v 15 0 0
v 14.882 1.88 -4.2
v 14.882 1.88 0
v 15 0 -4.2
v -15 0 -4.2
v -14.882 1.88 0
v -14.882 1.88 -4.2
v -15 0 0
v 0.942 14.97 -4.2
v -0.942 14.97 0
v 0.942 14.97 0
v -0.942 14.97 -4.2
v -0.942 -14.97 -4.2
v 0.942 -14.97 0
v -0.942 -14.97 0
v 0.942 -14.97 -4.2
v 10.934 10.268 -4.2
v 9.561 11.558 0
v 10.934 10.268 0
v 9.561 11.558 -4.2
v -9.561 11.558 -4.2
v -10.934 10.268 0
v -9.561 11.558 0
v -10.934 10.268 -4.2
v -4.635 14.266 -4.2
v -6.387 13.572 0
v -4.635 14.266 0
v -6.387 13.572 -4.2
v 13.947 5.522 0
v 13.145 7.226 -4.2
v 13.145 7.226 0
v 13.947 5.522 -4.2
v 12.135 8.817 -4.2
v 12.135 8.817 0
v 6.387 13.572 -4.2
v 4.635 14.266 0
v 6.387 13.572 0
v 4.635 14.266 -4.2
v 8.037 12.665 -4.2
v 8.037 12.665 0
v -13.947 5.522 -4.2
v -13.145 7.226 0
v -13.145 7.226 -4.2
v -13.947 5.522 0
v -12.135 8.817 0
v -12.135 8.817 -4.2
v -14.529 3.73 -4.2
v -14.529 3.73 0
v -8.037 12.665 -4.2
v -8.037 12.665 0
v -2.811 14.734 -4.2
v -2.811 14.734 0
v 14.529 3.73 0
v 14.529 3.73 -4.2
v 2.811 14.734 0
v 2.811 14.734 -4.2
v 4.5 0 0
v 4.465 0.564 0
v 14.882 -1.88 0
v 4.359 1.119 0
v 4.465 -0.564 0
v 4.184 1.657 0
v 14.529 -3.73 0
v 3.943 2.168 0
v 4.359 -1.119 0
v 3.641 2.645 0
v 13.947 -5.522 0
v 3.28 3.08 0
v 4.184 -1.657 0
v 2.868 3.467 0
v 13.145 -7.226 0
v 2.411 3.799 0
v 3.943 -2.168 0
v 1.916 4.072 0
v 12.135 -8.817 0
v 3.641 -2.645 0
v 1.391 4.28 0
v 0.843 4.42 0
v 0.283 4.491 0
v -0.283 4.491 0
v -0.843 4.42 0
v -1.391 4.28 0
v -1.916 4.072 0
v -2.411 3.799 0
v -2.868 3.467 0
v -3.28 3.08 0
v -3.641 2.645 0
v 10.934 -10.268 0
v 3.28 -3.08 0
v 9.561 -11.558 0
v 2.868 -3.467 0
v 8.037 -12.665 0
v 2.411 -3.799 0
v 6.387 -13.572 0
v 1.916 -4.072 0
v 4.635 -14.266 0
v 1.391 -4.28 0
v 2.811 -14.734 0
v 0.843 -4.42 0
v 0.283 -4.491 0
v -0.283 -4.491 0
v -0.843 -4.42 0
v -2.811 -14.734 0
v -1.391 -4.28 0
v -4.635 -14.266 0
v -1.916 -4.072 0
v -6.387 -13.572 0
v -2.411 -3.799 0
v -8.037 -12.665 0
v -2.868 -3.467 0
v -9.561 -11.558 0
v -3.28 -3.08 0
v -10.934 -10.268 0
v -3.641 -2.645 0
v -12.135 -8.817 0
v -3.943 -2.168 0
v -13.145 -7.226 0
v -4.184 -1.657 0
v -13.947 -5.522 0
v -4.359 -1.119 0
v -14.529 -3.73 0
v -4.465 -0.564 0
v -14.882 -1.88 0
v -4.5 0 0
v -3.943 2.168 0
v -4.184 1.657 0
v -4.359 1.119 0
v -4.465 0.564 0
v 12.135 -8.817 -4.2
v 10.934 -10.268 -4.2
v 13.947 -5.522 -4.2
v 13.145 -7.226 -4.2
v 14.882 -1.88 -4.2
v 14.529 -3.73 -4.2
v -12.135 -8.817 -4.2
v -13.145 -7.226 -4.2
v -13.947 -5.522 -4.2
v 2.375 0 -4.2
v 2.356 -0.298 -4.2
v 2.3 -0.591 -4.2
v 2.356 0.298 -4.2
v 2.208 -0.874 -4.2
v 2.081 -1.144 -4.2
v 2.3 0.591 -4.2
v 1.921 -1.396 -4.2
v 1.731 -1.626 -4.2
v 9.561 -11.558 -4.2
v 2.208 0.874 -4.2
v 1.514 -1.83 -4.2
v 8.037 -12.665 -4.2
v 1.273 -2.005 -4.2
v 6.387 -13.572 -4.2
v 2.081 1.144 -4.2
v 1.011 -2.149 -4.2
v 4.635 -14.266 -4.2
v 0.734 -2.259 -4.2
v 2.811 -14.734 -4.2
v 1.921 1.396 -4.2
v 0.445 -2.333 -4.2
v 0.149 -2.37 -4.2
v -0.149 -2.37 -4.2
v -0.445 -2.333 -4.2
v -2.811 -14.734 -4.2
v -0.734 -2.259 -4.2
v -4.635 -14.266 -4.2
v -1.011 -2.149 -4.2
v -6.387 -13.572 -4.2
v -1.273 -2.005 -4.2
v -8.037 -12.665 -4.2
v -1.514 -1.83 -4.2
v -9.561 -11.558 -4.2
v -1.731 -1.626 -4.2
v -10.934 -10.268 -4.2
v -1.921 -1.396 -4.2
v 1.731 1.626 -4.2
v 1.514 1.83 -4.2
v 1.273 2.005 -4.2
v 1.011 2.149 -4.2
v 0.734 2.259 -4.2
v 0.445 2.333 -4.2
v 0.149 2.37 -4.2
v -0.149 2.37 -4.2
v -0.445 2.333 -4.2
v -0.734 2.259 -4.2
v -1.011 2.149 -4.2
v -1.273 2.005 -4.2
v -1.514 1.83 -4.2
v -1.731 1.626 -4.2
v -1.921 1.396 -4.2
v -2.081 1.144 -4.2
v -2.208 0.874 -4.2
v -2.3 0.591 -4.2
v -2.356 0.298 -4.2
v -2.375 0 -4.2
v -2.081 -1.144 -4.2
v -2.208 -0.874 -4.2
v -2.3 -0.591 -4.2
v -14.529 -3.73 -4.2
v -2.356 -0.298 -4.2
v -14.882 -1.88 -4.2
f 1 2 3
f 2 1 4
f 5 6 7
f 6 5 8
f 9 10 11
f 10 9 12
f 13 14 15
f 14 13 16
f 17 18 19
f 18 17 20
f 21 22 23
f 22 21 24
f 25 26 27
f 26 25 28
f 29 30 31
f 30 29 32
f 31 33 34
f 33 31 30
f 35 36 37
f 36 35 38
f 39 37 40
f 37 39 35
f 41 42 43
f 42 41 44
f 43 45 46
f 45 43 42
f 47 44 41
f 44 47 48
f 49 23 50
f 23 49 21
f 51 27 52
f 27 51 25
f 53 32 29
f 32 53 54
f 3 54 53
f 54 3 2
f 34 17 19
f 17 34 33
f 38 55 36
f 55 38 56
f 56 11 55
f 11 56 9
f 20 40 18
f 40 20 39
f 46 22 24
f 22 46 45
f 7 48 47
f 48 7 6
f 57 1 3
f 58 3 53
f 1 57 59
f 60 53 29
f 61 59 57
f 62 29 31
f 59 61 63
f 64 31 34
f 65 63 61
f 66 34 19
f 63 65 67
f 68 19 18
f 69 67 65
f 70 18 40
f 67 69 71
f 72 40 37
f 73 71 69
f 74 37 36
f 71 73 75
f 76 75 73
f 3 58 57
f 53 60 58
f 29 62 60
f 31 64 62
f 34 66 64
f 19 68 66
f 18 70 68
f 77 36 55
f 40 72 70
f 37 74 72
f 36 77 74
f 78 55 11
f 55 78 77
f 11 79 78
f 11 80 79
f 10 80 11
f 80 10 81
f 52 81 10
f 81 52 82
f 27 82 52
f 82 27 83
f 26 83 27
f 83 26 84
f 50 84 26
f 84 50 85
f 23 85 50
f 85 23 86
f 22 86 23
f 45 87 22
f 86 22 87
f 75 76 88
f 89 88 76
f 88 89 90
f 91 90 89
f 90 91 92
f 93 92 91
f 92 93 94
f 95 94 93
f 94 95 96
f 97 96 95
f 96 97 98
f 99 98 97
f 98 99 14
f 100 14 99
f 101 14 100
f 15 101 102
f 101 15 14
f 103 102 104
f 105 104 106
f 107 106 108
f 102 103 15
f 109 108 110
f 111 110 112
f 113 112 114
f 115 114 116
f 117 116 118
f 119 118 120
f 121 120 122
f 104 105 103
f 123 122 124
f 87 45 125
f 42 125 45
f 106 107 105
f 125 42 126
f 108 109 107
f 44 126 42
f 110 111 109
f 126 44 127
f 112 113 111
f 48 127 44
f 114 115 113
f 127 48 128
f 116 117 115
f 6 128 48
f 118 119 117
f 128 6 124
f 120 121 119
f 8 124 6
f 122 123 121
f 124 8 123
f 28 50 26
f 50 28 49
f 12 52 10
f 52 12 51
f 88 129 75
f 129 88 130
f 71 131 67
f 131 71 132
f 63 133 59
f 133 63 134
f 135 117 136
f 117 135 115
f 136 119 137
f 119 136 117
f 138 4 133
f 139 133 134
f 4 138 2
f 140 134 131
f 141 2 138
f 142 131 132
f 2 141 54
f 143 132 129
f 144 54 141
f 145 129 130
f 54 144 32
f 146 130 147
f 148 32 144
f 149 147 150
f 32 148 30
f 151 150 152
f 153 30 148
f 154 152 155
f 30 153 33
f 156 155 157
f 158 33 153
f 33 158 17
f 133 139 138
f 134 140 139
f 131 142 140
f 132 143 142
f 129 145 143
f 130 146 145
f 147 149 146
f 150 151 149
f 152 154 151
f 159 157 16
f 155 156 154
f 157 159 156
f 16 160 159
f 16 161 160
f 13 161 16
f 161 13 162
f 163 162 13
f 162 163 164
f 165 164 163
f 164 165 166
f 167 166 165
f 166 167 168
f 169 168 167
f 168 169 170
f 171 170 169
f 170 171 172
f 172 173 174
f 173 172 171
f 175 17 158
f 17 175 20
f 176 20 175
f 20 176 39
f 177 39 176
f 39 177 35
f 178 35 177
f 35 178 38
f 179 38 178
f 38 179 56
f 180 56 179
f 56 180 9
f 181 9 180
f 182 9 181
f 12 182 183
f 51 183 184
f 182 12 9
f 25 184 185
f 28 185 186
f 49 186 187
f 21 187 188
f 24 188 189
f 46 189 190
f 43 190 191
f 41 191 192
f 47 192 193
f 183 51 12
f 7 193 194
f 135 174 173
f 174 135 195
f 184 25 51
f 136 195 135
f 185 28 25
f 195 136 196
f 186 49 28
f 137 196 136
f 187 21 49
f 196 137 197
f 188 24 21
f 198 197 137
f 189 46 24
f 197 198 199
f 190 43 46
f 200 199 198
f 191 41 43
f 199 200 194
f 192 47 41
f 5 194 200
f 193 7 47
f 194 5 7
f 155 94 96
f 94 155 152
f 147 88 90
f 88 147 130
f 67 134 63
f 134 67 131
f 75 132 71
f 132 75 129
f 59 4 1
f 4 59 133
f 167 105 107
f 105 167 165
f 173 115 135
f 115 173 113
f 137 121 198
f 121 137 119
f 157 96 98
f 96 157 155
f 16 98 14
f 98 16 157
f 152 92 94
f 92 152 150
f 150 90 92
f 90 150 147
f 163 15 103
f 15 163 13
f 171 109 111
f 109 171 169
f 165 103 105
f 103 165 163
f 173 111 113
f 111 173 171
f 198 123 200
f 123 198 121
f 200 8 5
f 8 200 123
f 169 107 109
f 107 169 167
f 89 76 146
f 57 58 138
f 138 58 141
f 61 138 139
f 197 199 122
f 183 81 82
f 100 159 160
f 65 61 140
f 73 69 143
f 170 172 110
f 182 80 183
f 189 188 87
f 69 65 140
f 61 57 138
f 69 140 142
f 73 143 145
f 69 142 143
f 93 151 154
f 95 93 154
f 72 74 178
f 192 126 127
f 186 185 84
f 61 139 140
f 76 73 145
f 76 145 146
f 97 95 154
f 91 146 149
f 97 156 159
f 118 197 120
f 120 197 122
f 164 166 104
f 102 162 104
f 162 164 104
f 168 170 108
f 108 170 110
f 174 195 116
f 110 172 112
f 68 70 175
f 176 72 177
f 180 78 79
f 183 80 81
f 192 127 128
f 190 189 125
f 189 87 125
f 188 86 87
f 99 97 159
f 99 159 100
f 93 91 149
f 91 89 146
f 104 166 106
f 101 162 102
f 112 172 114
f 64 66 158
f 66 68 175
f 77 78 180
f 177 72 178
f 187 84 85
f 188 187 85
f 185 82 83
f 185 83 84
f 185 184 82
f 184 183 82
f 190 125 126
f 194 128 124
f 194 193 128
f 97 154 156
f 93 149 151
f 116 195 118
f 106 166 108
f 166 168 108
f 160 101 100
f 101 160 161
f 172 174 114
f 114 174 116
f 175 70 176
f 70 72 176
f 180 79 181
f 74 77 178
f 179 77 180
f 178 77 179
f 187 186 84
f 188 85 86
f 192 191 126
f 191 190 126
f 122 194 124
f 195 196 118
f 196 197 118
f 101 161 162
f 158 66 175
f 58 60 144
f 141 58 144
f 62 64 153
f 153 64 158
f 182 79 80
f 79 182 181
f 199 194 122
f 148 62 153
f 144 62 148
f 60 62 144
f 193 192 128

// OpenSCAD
$fn = 50;


difference() {
	union() {
		translate(v = [0, 0, -4.2000000000]) {
			cylinder(h = 4.2000000000, r = 15.0000000000);
		}
		translate(v = [0, 0, -4.2000000000]) {
			cylinder(h = 4.2000000000, r = 2.8750000000);
		}
	}
	union() {
		translate(v = [0, 0, 0]) {
			rotate(a = [0, 0, 0]) {
				difference() {
					union() {
						translate(v = [0, 0, -4.2000000000]) {
							cylinder(h = 4.2000000000, r = 2.2500000000);
						}
						translate(v = [0, 0, -4.2000000000]) {
							cylinder(h = 4.2000000000, r1 = 2.3750000000, r2 = 4.5000000000);
						}
						translate(v = [0, 0, -4.2000000000]) {
							cylinder(h = 4.2000000000, r = 2.3750000000);
						}
						translate(v = [0, 0, -4.2000000000]) {
							cylinder(h = 4.2000000000, r = 2.2500000000);
						}
					}
					union();
				}
			}
		}
	}
}
